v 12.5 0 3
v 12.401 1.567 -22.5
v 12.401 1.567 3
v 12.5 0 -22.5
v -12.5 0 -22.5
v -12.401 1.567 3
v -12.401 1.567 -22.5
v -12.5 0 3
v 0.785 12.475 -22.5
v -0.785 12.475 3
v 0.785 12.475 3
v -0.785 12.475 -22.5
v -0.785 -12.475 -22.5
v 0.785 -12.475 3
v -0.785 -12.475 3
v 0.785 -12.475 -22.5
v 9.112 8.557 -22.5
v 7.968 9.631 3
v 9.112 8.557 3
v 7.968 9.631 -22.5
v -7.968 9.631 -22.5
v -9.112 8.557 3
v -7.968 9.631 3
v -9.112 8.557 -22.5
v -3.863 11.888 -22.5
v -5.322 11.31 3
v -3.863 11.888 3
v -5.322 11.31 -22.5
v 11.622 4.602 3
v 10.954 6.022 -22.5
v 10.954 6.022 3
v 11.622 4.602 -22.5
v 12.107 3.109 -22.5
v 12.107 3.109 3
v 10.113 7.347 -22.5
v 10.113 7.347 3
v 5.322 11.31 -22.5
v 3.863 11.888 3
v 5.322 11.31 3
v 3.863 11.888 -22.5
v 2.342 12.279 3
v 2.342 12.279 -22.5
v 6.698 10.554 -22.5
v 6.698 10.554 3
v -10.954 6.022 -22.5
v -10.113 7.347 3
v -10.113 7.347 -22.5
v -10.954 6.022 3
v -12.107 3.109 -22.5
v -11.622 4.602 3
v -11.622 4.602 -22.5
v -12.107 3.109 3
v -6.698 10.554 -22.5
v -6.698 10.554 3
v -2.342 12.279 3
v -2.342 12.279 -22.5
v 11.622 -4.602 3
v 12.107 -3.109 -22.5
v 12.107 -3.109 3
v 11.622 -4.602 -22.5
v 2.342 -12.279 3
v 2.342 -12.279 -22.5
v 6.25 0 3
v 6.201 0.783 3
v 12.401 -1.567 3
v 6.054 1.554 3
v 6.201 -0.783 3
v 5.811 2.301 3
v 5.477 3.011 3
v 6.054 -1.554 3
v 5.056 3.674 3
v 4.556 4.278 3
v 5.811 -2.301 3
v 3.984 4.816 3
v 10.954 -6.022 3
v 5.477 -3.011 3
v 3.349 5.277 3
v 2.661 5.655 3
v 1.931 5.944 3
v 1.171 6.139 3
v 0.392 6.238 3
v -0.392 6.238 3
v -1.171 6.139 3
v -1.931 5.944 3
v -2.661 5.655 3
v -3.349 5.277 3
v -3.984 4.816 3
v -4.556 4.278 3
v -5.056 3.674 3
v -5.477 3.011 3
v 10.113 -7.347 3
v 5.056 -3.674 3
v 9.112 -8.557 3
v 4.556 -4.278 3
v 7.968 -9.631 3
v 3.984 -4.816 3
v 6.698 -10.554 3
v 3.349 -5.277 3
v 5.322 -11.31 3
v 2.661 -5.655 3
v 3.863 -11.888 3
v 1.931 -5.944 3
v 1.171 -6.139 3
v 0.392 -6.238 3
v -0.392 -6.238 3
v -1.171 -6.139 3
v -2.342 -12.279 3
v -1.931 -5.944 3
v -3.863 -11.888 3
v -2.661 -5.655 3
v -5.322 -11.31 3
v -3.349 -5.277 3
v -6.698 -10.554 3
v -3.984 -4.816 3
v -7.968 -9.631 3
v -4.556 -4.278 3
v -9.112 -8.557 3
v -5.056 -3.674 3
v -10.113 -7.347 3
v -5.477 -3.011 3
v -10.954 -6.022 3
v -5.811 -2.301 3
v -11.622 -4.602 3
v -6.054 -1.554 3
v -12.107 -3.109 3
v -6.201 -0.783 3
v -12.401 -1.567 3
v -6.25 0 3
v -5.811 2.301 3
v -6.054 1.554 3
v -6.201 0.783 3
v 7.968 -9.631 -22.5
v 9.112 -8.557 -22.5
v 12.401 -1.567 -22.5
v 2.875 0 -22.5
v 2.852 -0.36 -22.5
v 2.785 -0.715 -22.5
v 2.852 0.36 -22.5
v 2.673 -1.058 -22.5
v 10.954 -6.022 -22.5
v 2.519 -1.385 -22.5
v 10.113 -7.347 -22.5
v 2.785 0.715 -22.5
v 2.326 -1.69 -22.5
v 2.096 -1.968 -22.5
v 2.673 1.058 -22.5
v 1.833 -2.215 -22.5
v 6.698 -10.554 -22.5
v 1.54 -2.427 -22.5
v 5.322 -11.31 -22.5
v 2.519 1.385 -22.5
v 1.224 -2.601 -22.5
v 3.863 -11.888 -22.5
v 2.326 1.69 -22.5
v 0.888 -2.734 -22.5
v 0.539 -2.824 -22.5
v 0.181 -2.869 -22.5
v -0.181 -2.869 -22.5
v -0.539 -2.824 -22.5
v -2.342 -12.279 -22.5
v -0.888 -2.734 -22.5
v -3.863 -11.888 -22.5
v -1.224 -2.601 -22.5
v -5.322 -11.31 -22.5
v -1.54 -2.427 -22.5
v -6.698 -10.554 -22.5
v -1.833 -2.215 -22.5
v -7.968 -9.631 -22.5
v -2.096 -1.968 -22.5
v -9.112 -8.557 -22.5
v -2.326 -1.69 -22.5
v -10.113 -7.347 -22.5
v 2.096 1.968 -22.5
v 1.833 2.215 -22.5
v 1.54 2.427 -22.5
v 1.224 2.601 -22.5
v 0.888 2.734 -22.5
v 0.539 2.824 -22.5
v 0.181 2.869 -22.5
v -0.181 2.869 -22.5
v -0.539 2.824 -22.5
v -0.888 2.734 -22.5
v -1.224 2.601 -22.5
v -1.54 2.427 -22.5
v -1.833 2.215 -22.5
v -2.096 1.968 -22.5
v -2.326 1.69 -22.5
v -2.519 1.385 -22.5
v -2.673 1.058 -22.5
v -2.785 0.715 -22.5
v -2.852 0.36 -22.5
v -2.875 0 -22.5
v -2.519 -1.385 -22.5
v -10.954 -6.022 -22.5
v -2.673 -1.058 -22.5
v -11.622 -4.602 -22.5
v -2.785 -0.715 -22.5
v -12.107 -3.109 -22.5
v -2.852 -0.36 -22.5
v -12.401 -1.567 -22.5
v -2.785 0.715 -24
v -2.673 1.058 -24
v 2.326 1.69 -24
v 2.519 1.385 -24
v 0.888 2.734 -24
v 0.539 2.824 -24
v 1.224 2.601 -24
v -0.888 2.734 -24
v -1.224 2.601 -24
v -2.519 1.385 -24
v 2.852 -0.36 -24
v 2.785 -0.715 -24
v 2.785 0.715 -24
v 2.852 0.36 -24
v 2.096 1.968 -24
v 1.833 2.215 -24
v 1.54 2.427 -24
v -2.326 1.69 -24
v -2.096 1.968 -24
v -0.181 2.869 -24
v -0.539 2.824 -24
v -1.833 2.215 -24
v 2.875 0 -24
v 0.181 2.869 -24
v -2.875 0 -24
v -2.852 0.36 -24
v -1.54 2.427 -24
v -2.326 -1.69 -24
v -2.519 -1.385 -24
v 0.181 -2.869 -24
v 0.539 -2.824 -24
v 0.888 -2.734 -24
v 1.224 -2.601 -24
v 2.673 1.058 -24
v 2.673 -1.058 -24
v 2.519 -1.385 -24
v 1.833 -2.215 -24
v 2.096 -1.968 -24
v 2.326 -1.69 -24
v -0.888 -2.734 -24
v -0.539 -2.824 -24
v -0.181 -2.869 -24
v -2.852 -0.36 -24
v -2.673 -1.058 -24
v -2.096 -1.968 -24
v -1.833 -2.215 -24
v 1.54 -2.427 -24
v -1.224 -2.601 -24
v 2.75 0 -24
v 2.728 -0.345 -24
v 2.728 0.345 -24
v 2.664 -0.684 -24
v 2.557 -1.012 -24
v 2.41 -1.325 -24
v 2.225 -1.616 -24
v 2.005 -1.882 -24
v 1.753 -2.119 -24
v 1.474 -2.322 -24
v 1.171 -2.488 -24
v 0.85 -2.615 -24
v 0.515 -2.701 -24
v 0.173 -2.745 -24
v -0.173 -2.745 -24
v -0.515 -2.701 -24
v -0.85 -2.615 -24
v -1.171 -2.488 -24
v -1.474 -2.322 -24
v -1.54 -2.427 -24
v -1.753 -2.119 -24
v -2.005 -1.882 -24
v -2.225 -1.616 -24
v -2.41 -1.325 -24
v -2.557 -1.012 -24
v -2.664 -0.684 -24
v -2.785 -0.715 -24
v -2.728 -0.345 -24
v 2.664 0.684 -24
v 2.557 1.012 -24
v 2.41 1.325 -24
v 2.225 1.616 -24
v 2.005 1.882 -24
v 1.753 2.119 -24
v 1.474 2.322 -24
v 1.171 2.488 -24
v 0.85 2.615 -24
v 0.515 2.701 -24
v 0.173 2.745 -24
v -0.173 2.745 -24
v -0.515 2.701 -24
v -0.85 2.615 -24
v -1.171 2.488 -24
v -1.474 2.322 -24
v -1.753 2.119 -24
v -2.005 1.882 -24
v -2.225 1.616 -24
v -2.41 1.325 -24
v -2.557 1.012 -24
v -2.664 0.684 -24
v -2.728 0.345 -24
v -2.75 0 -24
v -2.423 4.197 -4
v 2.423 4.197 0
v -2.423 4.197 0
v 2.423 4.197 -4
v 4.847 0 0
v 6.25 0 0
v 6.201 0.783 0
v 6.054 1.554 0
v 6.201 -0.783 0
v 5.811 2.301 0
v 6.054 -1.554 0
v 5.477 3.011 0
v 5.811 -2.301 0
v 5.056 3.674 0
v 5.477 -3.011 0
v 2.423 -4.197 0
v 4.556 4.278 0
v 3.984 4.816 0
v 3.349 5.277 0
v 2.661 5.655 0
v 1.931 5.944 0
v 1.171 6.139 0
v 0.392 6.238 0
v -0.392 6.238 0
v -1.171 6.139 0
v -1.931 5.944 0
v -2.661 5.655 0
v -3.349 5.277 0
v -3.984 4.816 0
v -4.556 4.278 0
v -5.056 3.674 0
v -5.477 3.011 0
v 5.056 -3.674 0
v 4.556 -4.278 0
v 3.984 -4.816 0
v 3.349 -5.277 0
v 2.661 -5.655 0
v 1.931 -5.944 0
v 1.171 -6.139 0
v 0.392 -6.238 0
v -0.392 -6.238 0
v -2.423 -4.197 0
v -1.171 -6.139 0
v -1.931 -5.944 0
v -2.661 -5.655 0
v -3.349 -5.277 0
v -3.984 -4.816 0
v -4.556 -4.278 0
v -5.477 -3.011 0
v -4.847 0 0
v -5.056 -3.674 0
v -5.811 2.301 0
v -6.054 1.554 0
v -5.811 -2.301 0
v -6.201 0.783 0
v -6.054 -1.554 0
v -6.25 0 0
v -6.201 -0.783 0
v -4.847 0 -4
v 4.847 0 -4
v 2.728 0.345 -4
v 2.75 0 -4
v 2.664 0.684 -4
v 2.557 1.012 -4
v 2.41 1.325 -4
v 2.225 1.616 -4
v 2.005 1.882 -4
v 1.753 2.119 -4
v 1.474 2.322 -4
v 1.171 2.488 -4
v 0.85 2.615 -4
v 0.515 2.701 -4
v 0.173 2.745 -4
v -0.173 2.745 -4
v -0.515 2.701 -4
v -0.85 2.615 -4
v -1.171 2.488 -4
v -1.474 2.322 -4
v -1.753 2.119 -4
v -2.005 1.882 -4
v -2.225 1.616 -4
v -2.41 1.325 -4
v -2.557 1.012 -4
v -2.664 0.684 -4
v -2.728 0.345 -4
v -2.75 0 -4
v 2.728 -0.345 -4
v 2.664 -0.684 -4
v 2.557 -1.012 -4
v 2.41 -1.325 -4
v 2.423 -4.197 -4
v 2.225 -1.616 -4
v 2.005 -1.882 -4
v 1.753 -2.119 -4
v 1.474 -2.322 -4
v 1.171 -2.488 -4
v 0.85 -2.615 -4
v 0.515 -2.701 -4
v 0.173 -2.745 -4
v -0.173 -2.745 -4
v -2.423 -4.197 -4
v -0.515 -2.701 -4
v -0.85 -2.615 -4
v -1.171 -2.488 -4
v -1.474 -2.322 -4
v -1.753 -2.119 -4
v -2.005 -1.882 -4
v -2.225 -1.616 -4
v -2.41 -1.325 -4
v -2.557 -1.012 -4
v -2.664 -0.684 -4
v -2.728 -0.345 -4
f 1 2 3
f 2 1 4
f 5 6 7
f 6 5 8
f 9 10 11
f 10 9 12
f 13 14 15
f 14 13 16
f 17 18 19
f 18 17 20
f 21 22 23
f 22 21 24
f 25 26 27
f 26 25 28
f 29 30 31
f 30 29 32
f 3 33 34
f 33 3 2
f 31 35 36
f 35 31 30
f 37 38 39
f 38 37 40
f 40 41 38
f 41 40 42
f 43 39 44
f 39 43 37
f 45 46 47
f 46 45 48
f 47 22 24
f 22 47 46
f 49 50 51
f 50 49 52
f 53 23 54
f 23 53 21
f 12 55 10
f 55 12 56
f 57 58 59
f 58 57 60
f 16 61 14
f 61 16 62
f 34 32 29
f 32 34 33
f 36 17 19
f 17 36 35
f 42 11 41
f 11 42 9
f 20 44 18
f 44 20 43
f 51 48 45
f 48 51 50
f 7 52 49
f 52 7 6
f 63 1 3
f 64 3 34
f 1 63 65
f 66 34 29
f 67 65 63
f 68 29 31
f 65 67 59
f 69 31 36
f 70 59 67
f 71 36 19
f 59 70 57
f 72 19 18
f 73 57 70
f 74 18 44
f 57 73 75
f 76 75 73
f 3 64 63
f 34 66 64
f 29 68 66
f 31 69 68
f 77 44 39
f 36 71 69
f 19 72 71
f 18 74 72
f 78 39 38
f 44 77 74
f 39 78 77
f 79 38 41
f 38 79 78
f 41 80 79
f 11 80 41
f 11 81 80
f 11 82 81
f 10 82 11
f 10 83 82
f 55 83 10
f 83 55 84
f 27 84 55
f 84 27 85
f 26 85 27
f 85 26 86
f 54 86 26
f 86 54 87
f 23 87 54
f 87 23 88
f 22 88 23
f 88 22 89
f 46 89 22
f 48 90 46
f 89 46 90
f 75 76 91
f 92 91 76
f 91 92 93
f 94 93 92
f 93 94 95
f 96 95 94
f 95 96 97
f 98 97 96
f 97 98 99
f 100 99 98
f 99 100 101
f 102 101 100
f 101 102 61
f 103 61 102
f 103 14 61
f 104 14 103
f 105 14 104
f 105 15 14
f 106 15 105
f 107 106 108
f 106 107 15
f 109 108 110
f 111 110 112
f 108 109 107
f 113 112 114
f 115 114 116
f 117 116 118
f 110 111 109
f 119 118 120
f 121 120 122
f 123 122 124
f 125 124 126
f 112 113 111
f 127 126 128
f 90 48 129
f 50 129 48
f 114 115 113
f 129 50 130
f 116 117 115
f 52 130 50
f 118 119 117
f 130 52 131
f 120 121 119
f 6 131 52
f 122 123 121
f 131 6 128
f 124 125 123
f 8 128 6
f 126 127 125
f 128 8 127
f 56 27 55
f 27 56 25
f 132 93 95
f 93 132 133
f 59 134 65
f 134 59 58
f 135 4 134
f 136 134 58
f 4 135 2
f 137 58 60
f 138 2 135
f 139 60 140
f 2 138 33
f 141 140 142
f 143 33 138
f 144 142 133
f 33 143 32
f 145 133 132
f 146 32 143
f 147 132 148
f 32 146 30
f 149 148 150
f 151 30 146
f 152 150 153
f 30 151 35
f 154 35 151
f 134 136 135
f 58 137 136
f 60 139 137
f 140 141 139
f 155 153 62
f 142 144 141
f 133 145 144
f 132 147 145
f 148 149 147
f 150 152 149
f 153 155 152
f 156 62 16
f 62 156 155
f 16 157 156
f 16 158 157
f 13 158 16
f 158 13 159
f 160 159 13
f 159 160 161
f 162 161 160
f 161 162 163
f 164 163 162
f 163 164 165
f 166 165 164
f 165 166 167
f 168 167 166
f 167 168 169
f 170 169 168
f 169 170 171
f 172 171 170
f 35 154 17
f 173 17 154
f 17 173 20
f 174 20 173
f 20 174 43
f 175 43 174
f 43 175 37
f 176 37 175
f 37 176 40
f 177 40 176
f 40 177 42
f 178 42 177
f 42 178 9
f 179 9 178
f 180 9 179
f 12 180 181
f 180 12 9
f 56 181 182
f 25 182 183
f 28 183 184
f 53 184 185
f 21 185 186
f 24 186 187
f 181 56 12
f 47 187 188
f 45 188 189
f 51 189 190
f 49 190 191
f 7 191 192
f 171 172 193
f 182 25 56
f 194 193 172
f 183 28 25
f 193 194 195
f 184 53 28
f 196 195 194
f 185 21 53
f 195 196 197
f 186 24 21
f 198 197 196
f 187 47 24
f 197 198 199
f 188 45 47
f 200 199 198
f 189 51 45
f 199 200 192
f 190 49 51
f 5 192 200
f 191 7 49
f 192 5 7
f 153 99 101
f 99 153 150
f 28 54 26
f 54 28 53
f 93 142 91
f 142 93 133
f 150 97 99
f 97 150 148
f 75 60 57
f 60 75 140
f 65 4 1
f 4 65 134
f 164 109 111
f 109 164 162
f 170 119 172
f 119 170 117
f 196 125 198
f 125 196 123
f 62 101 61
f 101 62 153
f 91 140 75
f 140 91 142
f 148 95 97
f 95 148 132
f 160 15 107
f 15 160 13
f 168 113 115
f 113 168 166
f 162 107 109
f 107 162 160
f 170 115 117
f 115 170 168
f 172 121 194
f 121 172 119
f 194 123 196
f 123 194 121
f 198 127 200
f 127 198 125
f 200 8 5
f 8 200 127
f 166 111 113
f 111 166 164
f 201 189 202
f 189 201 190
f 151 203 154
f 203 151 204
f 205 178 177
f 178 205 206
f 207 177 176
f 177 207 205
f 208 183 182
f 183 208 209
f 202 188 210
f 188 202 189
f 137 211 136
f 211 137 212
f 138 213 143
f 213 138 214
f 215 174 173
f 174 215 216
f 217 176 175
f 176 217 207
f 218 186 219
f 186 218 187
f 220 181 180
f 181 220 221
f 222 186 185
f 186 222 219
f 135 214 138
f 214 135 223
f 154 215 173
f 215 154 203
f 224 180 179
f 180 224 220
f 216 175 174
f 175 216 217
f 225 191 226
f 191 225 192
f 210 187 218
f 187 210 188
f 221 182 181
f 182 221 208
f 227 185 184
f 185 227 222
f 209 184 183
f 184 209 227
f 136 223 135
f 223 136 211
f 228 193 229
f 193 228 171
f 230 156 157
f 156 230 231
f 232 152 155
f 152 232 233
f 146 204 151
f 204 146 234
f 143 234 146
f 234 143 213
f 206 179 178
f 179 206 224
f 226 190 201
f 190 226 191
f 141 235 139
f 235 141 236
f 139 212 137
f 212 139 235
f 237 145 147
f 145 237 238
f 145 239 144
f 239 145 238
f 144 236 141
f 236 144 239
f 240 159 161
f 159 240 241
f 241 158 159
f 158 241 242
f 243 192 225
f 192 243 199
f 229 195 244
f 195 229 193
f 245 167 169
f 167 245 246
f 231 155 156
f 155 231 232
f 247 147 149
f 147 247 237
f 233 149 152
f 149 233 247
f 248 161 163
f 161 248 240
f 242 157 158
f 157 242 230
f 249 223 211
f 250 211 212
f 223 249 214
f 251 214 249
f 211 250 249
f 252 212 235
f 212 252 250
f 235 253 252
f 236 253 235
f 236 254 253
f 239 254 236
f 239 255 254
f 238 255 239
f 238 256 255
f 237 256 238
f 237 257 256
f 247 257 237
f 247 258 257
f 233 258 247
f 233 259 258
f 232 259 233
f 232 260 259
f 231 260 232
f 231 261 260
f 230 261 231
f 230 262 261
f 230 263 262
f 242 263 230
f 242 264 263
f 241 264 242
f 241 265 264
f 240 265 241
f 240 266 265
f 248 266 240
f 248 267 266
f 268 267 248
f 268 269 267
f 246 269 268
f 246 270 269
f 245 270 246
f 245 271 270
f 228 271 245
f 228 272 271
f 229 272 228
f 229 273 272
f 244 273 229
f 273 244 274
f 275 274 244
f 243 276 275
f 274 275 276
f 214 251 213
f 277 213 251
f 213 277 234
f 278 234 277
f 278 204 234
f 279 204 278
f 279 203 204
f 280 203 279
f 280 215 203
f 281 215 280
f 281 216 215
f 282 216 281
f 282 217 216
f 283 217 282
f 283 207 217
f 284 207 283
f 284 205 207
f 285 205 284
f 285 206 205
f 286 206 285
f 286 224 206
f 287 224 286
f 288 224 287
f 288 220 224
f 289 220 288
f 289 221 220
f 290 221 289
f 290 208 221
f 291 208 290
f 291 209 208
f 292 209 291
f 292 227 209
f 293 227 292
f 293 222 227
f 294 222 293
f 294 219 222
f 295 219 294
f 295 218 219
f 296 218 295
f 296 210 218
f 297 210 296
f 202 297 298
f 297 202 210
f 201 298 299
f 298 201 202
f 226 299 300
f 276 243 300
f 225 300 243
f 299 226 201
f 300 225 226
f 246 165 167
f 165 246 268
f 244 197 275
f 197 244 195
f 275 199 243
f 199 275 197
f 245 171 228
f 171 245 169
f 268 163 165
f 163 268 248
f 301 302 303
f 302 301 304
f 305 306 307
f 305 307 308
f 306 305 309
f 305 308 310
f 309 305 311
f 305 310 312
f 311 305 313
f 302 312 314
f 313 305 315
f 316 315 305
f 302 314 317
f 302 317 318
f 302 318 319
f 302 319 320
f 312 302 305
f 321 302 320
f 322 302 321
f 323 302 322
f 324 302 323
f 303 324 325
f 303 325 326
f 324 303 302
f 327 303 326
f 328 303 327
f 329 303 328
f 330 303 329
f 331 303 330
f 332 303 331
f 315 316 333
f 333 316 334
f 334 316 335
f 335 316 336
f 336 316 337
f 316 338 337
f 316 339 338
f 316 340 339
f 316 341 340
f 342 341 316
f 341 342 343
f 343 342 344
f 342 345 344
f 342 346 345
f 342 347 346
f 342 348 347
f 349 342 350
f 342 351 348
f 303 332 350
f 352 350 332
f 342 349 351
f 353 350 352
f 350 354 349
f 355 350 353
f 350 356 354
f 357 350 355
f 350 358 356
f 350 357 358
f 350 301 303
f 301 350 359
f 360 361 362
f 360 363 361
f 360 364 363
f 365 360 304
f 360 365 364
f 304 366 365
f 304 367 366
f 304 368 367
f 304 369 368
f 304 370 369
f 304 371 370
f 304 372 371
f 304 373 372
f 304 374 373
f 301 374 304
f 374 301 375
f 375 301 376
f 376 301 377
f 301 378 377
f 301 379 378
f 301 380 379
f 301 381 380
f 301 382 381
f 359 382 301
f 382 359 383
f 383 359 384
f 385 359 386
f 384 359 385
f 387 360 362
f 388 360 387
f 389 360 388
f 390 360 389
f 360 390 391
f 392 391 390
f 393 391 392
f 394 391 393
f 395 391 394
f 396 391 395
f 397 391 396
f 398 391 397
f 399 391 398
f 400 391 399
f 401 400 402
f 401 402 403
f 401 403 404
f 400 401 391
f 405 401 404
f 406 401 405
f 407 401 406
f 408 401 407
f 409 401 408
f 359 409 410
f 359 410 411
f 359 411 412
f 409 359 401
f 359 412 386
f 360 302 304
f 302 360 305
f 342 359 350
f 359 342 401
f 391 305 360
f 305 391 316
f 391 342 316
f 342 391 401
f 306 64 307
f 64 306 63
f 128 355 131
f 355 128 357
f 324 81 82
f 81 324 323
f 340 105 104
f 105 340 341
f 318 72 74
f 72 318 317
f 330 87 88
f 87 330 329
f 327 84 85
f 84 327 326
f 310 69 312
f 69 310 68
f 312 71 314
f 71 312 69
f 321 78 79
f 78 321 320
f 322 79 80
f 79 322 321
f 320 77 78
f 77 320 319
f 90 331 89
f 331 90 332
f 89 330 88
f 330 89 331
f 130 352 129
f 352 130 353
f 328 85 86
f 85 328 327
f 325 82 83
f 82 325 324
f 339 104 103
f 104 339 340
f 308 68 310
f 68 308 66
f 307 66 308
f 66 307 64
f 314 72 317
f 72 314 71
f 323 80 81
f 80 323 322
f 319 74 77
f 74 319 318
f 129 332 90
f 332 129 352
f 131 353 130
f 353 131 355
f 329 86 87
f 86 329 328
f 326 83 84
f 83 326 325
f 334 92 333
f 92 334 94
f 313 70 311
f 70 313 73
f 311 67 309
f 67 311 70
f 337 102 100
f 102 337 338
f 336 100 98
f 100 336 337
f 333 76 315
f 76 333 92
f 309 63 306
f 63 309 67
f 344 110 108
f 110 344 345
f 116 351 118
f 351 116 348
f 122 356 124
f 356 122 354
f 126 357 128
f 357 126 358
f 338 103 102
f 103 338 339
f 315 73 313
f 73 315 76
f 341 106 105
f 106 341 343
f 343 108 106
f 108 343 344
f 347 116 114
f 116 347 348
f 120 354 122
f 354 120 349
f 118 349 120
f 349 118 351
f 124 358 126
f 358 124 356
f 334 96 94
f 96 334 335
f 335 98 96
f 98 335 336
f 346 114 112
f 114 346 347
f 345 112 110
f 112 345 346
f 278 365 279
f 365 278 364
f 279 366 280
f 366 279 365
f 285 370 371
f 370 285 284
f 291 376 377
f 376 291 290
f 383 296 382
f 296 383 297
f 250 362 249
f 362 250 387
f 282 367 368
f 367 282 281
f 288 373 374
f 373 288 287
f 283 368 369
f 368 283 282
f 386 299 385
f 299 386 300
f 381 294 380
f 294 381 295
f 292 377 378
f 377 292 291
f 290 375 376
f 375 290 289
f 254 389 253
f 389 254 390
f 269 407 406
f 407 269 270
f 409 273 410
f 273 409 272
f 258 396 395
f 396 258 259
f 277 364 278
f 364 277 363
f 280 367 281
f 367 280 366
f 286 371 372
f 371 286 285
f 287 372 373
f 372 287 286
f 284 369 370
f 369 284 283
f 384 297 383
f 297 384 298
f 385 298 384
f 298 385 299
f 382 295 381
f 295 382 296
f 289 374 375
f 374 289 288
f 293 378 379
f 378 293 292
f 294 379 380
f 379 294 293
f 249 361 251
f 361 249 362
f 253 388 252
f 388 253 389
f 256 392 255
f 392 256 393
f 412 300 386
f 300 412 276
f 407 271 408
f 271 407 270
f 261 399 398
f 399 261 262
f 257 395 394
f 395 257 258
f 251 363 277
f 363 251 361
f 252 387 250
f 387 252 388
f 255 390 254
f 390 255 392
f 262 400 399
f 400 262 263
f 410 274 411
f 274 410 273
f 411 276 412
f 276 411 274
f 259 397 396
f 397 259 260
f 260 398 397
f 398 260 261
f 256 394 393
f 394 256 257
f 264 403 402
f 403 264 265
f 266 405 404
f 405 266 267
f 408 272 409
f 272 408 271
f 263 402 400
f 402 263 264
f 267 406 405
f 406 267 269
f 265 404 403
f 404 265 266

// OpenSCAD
$fn = 50;

difference() {
	union() {
		translate(v = [0, 0, -22.5]) {
			cylinder(h = 25.5, r = 12.5);
		}
		#translate(v = [0, 0, -24.0]) {
			cylinder(h = 24, r = 2.875);
		}
	}
	union() {
		translate(v = [0, 0, 0]) {
			rotate(a = [0, 0, 0]) {
				difference() {
					union() {
						translate(v = [0, 0, -4]) {
							linear_extrude(height = 4) {
								polygon(points = [[4.8468, 0.0], [2.4234000000000004, 4.197451927062417], [-2.423399999999999, 4.197451927062417], [-4.8468, 5.935618106107392e-16], [-2.423400000000002, -4.197451927062416], [2.423399999999997, -4.197451927062419]]);
							}
						}
					}
					union();
				}
			}
		}
		#cylinder(h = 3, r = 6.25);
		#translate(v = [0, 0, -100.0]) {
			cylinder(h = 200, r = 2.75);
		}
	}
}
